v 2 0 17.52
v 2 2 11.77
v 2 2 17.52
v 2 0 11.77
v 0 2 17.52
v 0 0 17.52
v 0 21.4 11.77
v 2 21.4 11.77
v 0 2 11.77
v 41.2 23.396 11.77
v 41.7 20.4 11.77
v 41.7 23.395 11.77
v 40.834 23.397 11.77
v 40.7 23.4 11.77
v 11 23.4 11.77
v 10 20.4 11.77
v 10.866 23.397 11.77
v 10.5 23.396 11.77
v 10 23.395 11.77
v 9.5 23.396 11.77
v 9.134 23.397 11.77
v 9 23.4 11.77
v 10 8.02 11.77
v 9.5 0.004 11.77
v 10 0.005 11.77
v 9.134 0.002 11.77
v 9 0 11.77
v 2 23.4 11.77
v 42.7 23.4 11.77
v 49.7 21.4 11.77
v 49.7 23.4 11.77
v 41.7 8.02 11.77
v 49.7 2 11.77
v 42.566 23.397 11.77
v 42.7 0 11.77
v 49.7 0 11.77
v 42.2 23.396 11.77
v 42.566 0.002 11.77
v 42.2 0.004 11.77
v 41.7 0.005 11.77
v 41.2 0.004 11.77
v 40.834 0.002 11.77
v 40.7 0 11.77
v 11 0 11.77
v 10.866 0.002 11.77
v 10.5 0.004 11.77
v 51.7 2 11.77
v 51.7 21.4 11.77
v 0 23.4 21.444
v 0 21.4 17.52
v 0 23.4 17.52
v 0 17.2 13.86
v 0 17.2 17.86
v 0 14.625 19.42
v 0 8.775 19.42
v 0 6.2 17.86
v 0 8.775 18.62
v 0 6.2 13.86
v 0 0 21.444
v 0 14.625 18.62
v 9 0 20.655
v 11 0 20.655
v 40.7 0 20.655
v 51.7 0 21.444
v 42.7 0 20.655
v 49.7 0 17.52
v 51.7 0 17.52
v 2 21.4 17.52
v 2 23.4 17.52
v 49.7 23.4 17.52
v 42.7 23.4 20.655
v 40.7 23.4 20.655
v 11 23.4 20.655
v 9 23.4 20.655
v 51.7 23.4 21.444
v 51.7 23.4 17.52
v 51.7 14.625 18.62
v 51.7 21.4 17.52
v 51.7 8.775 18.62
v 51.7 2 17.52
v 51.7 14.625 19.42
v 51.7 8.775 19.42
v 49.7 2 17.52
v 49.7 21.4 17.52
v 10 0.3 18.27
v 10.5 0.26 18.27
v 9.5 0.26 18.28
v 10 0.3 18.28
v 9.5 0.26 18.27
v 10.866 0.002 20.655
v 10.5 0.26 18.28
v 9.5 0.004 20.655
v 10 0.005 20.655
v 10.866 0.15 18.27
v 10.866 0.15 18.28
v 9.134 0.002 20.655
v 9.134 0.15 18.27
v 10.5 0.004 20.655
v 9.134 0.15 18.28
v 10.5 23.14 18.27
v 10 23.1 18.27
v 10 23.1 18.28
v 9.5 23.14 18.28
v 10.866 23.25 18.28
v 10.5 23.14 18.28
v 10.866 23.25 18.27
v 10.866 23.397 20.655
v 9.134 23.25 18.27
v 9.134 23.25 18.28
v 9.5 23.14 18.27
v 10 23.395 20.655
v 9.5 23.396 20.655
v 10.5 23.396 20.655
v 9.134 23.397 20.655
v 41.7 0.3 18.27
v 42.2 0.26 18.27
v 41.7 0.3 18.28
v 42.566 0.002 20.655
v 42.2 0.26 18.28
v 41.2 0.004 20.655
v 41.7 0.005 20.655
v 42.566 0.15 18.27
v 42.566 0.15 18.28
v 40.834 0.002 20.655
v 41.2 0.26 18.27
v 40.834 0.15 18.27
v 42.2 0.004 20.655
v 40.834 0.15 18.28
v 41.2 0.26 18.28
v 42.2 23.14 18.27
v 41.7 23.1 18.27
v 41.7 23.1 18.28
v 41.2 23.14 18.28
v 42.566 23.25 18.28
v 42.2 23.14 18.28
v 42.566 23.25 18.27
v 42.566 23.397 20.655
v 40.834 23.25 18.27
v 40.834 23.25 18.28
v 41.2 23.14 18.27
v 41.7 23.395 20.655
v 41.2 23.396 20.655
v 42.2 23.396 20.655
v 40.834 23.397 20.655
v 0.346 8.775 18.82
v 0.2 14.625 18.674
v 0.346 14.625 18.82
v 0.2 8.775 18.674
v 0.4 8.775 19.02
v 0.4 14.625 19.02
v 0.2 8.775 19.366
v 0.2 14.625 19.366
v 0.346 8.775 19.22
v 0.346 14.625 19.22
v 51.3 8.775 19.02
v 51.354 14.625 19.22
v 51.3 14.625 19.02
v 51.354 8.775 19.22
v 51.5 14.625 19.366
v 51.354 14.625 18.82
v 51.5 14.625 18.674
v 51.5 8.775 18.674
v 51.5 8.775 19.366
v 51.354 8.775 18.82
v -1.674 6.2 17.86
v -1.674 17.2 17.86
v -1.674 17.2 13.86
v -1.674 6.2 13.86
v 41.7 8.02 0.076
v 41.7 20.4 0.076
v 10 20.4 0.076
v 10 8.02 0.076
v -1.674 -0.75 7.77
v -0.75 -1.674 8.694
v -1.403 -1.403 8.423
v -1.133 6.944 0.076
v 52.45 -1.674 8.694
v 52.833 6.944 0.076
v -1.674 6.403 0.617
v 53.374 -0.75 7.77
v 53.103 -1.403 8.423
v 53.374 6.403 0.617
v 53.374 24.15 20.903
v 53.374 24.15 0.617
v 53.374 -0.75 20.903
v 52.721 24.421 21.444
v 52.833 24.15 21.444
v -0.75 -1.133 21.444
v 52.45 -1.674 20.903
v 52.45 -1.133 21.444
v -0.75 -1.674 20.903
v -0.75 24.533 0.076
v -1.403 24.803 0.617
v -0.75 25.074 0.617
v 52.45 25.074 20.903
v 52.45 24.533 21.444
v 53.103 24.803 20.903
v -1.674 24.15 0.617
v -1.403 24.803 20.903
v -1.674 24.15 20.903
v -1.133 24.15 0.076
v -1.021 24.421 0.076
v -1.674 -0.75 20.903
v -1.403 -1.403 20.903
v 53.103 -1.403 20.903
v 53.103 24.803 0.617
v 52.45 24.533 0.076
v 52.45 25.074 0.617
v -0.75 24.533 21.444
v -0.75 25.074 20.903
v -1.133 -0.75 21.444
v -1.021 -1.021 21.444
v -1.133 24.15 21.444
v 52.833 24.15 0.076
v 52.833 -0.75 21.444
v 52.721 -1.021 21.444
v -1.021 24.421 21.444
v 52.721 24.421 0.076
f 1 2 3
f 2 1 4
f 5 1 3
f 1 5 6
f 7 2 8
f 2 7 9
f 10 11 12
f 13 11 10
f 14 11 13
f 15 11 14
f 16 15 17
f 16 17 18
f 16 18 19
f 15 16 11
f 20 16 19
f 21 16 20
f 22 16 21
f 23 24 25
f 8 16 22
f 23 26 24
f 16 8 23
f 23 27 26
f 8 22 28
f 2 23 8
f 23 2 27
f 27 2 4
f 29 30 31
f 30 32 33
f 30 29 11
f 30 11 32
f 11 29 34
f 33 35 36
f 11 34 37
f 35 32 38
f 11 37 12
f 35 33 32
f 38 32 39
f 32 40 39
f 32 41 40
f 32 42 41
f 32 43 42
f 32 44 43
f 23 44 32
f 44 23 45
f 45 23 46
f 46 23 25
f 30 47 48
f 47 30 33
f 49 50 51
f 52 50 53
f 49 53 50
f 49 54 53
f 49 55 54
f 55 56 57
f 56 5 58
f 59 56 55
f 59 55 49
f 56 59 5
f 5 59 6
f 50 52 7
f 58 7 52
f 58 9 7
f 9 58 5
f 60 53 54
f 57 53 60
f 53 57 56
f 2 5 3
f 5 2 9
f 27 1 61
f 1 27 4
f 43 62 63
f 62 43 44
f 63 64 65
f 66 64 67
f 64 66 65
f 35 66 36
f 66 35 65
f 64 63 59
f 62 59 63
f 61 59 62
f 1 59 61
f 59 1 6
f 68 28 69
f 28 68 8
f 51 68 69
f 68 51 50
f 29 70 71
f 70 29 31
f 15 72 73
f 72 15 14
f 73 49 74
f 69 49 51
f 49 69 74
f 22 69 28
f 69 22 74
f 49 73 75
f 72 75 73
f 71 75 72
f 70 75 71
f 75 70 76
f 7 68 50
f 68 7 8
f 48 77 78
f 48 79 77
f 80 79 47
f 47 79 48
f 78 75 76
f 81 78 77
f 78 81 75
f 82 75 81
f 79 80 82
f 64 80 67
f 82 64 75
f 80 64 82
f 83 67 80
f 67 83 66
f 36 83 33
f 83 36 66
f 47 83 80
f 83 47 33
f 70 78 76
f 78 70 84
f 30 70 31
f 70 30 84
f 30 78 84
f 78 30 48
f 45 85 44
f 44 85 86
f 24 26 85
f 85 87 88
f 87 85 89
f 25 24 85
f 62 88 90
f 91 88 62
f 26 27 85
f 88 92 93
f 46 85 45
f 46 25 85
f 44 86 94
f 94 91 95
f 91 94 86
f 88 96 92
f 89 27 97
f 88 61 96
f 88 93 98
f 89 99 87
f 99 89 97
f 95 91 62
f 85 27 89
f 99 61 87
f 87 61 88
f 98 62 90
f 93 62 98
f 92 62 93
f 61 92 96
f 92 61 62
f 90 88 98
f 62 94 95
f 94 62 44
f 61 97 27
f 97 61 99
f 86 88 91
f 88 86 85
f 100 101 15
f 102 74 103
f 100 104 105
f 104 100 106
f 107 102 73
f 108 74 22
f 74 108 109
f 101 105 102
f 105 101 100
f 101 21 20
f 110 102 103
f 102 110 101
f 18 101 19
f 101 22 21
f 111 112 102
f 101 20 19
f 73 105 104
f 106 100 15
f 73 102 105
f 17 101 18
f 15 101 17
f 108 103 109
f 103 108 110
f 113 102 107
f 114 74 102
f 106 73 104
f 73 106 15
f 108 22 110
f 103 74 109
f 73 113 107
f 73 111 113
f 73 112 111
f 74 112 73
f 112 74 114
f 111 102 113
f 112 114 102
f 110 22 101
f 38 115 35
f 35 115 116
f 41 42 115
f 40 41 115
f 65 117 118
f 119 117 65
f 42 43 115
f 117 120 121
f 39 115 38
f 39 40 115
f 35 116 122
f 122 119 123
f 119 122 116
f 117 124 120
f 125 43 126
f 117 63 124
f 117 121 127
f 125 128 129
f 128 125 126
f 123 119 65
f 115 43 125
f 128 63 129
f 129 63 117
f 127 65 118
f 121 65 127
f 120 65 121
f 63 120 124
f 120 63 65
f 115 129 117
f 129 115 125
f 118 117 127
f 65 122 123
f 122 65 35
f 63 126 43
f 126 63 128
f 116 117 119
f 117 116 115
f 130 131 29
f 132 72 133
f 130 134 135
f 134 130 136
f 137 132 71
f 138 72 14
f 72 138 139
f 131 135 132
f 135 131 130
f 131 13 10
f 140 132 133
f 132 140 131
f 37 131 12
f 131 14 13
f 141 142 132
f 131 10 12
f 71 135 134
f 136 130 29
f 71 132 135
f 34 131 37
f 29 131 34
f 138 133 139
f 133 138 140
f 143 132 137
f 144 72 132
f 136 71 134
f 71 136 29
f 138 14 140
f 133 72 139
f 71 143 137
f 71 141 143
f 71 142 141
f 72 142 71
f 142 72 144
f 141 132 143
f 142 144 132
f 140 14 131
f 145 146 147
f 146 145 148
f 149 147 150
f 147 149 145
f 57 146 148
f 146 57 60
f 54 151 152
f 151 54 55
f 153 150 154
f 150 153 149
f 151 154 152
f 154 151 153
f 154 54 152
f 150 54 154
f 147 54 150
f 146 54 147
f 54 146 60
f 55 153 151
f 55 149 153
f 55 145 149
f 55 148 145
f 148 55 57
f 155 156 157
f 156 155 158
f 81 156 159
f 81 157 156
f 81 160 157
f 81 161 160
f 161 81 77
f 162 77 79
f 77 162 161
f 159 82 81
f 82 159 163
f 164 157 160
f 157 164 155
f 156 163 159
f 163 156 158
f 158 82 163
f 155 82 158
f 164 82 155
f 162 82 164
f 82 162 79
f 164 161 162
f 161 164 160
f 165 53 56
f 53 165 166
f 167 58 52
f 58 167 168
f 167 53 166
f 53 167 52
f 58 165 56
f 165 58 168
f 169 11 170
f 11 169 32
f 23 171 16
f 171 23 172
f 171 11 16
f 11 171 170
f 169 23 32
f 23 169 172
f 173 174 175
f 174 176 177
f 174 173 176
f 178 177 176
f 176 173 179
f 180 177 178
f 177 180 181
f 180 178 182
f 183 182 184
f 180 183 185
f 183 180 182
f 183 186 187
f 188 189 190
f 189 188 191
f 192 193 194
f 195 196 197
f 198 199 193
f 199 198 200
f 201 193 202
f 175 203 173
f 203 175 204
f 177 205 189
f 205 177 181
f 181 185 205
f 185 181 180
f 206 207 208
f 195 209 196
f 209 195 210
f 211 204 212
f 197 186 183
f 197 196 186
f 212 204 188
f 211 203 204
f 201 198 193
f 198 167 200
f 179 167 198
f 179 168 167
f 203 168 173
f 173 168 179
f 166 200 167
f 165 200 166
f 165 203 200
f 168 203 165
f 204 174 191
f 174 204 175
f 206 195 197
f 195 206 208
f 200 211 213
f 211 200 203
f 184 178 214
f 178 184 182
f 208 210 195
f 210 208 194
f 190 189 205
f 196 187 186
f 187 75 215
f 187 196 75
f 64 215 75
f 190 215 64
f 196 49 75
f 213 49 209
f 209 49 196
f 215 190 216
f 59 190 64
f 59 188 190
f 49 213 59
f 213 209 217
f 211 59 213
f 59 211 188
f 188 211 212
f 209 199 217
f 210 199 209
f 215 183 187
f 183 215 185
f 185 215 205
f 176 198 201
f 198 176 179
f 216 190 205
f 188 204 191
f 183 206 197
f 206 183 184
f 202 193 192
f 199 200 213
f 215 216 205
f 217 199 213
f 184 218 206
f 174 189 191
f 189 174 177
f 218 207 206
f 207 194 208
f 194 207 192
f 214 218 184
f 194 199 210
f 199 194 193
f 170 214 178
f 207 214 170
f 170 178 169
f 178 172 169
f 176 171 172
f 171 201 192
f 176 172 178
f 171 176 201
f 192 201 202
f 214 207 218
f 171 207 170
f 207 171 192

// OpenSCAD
INNER_LENGTH   = 52.0  - .3;
INNER_WIDTH    = 23.5  - .1;
INNER_HEIGHT   =  9.0  + .75;

THICKNESS      =  1.5 +.25;
OUTER_HEIGHT   = (INNER_WIDTH  + THICKNESS*2) * 4 / 5;

PCB_THICKNESS  =  1.5;
CHAMFER        =  1.0;

PLUG_WIDTH     = 13.0 -2;
PLUG_THICKNESS =  4.0;
ATOM           =  0.01;

BORDER_X       = 10.0;
BORDER_Y       =  2.0;



PILLAR_SIDE    =  2.0;
PILLAR_HEIGHT  =  5.5  +.25;

FN             = 8;
PLAY           = .17;

module box() {
    d = THICKNESS-CHAMFER;
    hull()
    for (x=[-d, INNER_LENGTH + d]) {
        for (y=[-d, INNER_WIDTH + d]) {
            for (z=[CHAMFER, OUTER_HEIGHT - CHAMFER]) {
                translate([x, y, z])
                sphere(r=CHAMFER, $fn=FN);
            }
        }
    }
}

module chamber() {
    dy = INNER_WIDTH/2 -INNER_WIDTH/5;

    // for plug
    pz = PILLAR_HEIGHT - PLUG_THICKNESS + PLAY*2;
    translate([0, 0, OUTER_HEIGHT - INNER_HEIGHT])
    translate([-INNER_LENGTH/2, INNER_WIDTH/2 - PLUG_WIDTH/2, pz])
    cube([INNER_LENGTH, PLUG_WIDTH, PLUG_THICKNESS]);

    // for board
    translate([0, 0, OUTER_HEIGHT - INNER_HEIGHT])
    cube([INNER_LENGTH, INNER_WIDTH, INNER_HEIGHT]);

    // for bottom
    translate([BORDER_X, BORDER_Y + dy - BORDER_Y/2, -ATOM])
    //cube([INNER_LENGTH - 2*BORDER_X, INNER_WIDTH - 2*BORDER_Y, OUTER_HEIGHT + ATOM*2]);
    cube([INNER_LENGTH - 2*BORDER_X, INNER_WIDTH - 2*BORDER_Y -dy, OUTER_HEIGHT + ATOM*2]);

    if(0)
    translate([INNER_LENGTH/2, INNER_WIDTH/2, -ATOM])
    cylinder(d=INNER_WIDTH/2,h=OUTER_HEIGHT+ ATOM*2, $fn=60);

    
    // corner cut
    translate([0, dy , 0])
    rotate([-45, 0, 0])
    translate([-INNER_LENGTH, -INNER_WIDTH, -INNER_HEIGHT])
    cube([INNER_LENGTH*3, INNER_WIDTH, INNER_HEIGHT]);
}

module case() {
    difference() {
        box();
        chamber();
    }
    
    // pillars
    for (x=[0, INNER_LENGTH-PILLAR_SIDE]) {
        for (y=[0, INNER_WIDTH-PILLAR_SIDE]) {
            translate([x, y, OUTER_HEIGHT - INNER_HEIGHT])
            cube([PILLAR_SIDE, PILLAR_SIDE, PILLAR_HEIGHT]);
        }
    }
    
    // blockers
    BLOCKER_SIZE = 2;
    BLOCKER_THICKNESS = .6;
    BLOCKER_POS = 10;
    for (x=[BLOCKER_POS, INNER_LENGTH-BLOCKER_POS]) {
        for (y=[0, INNER_WIDTH]) {

            translate([x, y, OUTER_HEIGHT - INNER_HEIGHT])

            hull() {
                translate([0, 0, INNER_HEIGHT-THICKNESS/2])
                resize([BLOCKER_SIZE, , ATOM, ATOM])
                cylinder($fn=12);

                translate([0, 0, PILLAR_HEIGHT+PCB_THICKNESS/2])
                resize([BLOCKER_SIZE, BLOCKER_THICKNESS, ATOM])
                cylinder($fn=12);

                translate([0, 0, 0])
                resize([BLOCKER_SIZE, ATOM, ATOM])
                cylinder($fn=12);
            }
        }
    }
    
    // clip
    CYLINDER_RADIUS = .4;
    cl = INNER_WIDTH/4;
    cz = OUTER_HEIGHT - INNER_HEIGHT + PILLAR_HEIGHT + PCB_THICKNESS;
    for (x=[0, INNER_LENGTH]) {
        translate([x, (INNER_WIDTH-cl)/2, cz])
        rotate([-90, 0, 0])
        cylinder(r=CYLINDER_RADIUS, h = cl, $fn=12);
    }
}


module cap() {
    difference() {
        /*
        union() {
            translate([-THICKNESS*2, -THICKNESS, 0])
            cube([INNER_LENGTH + THICKNESS*4, INNER_WIDTH + THICKNESS*2, THICKNESS*2]);

            for (x=[-THICKNESS*2, INNER_LENGTH+THICKNESS]) {
                translate([x, -THICKNESS, 0 + THICKNESS*2])
                cube([THICKNESS, INNER_WIDTH + THICKNESS*2, THICKNESS*2]);
            }
        }
        */
        translate([-THICKNESS*2, -THICKNESS*2, 0])
        cube([INNER_LENGTH + THICKNESS*4, INNER_WIDTH + THICKNESS*4, THICKNESS*4]);

        translate([-THICKNESS, -THICKNESS, THICKNESS*2])
        cube([INNER_LENGTH + THICKNESS*2, INNER_WIDTH + THICKNESS*2, THICKNESS*4+1]);


        
        translate([0, -INNER_WIDTH/20*0, THICKNESS*.5]) {
            translate([0, INNER_WIDTH/2+.5 +.2, -THICKNESS*2.5 + .2]) rotate([45, 0, 0]) case();
            translate([0, INNER_WIDTH/2+.5, -THICKNESS*2.5]) rotate([45, 0, 0]) case();
            translate([0, INNER_WIDTH/2, -THICKNESS*2.5]) rotate([45, 0, 0]) case();
        }
    }
}


case();
//cap();
